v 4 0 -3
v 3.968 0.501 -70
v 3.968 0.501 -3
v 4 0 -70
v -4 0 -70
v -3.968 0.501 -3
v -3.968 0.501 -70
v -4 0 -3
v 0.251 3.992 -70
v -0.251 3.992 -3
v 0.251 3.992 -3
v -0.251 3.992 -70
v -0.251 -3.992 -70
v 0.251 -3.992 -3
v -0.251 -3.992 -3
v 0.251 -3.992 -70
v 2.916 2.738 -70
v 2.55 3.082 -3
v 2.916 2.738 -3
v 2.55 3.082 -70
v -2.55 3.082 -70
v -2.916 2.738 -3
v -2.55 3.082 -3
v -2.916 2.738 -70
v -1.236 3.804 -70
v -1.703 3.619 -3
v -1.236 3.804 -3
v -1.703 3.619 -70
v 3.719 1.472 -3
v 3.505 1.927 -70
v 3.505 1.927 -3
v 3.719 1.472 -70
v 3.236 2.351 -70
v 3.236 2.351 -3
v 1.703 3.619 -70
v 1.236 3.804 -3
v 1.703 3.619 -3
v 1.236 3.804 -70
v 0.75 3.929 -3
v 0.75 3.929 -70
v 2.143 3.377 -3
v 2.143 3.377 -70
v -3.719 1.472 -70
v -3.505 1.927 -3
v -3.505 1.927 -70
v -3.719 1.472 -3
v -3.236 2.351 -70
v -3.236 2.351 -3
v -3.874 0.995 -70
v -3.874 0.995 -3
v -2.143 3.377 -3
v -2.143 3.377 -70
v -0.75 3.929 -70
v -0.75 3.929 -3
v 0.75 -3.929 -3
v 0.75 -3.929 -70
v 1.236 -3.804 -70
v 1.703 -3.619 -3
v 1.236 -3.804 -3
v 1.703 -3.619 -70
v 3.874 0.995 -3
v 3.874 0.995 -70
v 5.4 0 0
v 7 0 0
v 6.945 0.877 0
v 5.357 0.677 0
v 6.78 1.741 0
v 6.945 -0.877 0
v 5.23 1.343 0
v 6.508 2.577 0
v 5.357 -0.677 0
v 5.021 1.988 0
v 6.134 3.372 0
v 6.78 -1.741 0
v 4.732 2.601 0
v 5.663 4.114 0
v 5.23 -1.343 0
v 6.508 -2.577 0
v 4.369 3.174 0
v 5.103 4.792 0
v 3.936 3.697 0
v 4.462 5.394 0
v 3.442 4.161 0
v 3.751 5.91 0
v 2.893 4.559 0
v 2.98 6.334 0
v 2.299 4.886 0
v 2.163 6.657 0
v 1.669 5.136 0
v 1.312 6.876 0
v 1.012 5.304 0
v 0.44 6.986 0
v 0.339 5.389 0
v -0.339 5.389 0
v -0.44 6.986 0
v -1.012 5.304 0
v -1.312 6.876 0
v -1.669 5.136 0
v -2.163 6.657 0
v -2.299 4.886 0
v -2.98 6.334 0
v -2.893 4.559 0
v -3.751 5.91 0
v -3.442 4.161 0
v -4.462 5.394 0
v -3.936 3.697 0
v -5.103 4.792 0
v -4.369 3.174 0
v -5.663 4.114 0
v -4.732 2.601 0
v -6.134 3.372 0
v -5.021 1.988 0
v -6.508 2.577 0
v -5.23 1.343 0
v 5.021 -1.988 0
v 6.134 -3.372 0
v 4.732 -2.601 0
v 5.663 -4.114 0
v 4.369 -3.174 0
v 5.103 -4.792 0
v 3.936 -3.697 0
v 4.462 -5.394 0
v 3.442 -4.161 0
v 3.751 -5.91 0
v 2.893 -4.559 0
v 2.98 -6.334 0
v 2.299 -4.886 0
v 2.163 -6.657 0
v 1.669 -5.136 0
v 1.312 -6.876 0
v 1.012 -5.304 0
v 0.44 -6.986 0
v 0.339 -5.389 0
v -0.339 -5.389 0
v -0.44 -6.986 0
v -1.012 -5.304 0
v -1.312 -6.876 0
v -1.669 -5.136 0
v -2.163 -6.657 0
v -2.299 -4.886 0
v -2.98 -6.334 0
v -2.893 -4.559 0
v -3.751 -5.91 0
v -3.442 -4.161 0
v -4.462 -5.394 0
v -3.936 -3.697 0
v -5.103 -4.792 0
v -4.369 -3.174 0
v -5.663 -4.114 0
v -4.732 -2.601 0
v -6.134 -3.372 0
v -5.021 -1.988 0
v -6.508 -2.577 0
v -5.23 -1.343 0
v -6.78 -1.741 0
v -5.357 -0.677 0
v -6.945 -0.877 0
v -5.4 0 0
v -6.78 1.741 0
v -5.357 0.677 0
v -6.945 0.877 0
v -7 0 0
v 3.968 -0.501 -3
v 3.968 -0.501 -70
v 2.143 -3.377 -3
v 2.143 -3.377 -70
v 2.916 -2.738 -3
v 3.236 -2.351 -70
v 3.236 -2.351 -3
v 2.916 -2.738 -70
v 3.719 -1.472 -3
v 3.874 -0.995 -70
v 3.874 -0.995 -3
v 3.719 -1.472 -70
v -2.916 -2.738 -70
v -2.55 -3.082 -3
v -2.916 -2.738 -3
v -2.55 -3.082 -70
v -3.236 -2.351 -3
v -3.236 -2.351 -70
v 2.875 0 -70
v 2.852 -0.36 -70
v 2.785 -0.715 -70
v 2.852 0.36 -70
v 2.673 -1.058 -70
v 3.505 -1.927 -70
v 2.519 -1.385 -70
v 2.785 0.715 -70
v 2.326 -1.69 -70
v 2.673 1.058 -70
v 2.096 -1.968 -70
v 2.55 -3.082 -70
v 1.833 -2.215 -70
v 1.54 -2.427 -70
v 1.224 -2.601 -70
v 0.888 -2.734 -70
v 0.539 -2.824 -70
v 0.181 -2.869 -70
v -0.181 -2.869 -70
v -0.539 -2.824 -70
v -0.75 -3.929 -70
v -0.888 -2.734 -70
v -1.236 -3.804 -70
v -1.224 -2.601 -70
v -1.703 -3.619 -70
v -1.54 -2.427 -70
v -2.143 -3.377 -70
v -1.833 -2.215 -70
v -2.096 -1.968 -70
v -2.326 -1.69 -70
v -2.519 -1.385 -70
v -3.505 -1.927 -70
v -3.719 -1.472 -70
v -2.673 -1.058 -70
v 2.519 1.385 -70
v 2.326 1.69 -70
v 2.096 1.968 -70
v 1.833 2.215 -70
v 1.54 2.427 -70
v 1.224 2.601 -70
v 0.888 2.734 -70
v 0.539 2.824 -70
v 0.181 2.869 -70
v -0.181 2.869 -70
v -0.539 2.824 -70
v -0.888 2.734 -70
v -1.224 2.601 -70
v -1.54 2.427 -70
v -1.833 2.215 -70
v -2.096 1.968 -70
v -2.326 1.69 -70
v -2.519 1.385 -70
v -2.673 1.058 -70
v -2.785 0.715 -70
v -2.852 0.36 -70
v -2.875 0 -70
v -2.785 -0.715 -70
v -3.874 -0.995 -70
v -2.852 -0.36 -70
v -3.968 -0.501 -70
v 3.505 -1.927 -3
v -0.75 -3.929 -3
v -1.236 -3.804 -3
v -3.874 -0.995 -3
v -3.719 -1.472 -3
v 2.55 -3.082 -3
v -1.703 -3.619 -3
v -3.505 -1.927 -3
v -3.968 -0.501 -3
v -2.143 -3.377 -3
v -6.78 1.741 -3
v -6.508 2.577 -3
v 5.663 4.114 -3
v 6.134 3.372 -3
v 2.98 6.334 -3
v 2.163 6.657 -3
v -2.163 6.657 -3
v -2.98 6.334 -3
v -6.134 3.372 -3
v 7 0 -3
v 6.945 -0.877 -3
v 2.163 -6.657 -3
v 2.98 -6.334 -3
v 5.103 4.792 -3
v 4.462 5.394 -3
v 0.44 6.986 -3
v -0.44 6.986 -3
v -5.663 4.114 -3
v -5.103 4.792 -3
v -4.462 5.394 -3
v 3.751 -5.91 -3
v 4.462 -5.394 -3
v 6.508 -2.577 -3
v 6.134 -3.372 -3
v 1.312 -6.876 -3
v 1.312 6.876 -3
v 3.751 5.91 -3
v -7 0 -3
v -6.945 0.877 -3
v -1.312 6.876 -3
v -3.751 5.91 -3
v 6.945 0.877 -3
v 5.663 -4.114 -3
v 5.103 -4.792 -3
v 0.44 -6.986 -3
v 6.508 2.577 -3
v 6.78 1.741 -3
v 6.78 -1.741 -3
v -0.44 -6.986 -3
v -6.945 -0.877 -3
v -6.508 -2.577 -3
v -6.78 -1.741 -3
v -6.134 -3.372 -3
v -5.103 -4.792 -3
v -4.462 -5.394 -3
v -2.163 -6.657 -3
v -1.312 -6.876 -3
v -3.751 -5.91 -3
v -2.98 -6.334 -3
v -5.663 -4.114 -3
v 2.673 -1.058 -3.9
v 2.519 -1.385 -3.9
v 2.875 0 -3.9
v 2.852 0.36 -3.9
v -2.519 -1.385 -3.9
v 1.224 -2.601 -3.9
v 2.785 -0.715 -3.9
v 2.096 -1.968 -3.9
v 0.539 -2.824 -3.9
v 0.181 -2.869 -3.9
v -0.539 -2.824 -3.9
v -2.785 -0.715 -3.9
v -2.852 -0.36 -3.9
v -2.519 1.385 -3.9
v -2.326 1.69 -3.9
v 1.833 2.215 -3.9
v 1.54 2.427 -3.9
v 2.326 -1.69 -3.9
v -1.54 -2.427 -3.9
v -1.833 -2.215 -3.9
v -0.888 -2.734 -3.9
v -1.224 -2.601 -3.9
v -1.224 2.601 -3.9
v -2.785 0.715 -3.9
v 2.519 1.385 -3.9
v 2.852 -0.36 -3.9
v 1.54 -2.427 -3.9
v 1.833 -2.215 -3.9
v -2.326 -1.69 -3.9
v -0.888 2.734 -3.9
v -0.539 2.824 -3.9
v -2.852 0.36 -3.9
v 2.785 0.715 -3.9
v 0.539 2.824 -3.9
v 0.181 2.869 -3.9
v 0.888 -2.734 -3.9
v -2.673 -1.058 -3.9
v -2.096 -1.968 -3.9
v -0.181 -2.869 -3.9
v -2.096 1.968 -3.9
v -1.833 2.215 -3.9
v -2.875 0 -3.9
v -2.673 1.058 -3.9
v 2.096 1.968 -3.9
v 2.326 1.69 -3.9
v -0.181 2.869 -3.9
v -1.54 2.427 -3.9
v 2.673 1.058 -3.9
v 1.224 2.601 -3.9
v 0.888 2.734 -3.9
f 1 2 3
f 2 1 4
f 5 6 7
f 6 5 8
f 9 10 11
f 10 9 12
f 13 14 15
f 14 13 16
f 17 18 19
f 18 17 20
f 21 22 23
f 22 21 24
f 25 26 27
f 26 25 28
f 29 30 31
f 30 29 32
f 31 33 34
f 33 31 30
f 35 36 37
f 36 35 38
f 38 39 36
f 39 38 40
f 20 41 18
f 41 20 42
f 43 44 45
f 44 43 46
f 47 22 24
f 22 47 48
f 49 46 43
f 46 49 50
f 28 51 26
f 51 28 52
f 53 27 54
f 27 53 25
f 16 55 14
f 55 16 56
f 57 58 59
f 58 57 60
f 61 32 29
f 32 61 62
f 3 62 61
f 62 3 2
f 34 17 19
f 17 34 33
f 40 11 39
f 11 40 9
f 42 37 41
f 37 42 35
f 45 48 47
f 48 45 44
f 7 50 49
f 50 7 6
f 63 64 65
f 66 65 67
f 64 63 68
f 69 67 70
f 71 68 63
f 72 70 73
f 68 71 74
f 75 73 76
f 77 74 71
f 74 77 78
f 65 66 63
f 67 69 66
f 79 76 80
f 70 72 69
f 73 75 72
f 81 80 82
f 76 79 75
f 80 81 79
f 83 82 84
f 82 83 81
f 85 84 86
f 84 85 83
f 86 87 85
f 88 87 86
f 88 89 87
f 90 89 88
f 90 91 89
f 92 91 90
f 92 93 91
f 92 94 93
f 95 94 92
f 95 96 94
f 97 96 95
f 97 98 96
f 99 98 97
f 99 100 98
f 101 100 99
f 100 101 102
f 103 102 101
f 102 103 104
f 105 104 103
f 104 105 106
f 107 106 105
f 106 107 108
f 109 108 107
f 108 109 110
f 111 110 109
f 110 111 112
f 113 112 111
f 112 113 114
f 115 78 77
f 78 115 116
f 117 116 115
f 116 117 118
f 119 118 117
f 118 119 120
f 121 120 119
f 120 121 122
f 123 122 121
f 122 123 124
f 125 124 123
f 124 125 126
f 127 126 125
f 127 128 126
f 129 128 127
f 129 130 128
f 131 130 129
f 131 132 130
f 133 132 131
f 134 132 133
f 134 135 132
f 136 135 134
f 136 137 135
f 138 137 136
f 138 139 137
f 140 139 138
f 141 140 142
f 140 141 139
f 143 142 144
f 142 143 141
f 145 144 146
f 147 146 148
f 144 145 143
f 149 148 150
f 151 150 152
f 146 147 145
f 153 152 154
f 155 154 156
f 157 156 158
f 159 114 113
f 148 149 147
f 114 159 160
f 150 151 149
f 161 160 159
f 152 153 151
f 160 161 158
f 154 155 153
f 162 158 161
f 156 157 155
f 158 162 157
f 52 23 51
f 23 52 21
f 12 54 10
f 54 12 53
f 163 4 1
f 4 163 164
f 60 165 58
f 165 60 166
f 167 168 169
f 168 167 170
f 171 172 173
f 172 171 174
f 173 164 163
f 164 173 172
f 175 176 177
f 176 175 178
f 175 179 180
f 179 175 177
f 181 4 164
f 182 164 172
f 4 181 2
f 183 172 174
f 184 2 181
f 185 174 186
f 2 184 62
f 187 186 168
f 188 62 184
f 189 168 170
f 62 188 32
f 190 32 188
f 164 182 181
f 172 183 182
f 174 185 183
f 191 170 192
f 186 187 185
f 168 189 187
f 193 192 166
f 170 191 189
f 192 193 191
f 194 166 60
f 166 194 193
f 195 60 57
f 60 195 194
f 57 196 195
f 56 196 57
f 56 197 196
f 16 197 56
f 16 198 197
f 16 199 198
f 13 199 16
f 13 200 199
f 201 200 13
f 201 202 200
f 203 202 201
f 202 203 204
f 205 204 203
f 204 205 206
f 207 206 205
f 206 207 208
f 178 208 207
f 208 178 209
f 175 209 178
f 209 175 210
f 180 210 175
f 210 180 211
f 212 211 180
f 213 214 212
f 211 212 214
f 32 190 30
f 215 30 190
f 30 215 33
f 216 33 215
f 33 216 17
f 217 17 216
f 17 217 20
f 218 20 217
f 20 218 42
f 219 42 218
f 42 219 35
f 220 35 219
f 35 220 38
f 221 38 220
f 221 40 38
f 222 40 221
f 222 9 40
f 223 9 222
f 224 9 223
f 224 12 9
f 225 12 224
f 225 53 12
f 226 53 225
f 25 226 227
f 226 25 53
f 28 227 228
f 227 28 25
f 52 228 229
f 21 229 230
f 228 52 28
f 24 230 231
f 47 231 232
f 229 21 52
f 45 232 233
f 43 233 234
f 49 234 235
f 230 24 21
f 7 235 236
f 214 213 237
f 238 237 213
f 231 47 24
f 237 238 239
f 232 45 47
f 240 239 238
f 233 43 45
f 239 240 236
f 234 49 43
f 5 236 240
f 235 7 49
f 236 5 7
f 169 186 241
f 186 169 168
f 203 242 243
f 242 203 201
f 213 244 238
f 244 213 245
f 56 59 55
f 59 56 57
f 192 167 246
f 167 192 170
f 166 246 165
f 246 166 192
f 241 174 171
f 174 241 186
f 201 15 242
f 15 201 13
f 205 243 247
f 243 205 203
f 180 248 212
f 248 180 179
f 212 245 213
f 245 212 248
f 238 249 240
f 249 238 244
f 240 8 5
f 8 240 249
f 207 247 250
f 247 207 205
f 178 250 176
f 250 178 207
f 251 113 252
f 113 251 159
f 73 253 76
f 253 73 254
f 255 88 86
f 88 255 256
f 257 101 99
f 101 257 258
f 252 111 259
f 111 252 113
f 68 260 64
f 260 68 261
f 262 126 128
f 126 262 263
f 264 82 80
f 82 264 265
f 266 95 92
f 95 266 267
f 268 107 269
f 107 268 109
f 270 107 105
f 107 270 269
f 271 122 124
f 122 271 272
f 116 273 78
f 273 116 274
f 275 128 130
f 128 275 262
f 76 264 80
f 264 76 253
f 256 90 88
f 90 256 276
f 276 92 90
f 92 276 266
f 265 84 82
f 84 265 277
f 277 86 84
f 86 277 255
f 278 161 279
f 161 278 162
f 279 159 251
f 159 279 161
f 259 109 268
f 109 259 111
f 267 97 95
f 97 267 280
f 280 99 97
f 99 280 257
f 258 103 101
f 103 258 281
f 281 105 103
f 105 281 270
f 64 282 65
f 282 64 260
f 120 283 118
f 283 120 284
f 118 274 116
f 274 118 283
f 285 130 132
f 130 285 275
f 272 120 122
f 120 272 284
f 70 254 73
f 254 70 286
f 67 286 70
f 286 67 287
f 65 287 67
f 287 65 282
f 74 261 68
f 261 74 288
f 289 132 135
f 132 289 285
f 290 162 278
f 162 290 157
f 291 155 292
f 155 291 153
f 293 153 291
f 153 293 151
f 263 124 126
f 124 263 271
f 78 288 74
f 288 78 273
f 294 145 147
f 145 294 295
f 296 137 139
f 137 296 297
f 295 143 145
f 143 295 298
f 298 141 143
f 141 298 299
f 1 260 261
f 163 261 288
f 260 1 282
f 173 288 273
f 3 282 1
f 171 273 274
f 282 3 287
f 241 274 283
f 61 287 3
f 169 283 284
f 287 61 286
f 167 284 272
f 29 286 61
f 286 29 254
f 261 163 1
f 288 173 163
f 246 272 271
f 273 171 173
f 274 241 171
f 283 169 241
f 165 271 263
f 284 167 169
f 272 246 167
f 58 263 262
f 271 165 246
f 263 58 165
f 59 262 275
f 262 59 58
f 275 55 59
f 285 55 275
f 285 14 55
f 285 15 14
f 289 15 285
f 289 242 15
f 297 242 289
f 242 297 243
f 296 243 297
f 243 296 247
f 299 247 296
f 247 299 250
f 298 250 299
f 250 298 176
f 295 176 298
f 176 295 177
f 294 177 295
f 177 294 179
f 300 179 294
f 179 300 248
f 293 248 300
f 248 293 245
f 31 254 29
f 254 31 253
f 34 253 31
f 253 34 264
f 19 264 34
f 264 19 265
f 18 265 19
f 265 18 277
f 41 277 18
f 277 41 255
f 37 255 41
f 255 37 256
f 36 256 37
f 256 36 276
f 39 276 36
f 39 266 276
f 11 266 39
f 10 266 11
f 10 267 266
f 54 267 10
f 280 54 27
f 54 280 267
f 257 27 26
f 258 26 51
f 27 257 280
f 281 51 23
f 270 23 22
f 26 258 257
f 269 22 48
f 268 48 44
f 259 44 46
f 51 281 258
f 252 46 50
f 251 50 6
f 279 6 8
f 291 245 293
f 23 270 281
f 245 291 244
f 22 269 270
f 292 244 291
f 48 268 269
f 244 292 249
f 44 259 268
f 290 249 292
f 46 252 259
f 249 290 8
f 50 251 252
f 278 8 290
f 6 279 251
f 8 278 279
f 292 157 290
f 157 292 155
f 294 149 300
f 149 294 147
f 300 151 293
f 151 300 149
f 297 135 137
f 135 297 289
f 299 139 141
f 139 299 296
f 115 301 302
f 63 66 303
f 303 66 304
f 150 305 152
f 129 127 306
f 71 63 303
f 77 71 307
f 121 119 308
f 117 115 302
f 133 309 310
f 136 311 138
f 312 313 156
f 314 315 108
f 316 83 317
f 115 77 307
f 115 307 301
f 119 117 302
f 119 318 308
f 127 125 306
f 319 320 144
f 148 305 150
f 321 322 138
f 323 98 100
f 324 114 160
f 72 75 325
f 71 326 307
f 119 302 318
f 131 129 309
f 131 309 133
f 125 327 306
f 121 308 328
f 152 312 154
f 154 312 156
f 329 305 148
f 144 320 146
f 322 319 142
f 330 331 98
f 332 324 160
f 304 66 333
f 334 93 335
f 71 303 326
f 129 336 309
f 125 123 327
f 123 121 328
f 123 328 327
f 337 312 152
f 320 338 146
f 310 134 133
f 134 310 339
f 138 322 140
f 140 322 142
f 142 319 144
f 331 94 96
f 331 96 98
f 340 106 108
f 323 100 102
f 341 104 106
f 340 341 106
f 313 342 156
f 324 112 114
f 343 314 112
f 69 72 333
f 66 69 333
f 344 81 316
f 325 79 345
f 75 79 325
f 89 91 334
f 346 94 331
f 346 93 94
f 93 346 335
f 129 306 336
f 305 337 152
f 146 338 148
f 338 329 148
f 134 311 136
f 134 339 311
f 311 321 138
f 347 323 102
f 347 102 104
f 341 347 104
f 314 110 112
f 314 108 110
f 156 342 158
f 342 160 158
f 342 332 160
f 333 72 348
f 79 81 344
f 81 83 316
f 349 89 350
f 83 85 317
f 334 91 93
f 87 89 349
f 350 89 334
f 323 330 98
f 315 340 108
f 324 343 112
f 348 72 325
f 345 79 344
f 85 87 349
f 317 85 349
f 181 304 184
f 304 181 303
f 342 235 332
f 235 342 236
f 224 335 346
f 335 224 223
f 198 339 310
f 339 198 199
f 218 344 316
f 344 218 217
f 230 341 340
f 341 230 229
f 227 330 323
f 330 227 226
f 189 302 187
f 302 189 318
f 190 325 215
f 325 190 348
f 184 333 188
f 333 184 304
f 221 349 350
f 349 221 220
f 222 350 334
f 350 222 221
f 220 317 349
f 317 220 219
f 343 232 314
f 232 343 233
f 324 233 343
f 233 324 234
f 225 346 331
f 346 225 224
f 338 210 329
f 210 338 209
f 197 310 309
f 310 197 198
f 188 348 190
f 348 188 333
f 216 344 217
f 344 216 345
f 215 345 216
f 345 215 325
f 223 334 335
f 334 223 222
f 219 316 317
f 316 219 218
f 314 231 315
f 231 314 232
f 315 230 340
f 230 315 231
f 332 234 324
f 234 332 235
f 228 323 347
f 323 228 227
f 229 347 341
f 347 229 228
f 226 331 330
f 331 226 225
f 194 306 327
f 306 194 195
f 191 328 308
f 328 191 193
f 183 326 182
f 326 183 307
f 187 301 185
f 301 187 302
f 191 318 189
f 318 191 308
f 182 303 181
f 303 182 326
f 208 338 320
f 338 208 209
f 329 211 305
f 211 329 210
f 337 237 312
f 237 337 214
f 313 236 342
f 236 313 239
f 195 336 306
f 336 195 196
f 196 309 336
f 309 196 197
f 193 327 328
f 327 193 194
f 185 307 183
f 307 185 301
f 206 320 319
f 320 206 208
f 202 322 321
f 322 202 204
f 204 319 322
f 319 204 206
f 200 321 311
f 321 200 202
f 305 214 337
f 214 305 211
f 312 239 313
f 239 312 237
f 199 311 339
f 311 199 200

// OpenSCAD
$fn = 50;


difference() {
	union() {
		translate(v = [0, 0, -70.0000000000]) {
			cylinder(h = 70, r = 4.0000000000);
		}
		translate(v = [0, 0, -3.0000000000]) {
			cylinder(h = 3, r = 7.0000000000);
		}
	}
	union() {
		translate(v = [0, 0, 0]) {
			rotate(a = [0, 0, 0]) {
				difference() {
					union() {
						#translate(v = [0, 0, -70.0000000000]) {
							cylinder(h = 70, r = 2.6000000000);
						}
						#translate(v = [0, 0, -3.9000000000]) {
							cylinder(h = 3.9000000000, r = 4.0000000000, r1 = 2.8750000000, r2 = 5.4000000000);
						}
						#translate(v = [0, 0, -70.0000000000]) {
							cylinder(h = 70, r = 2.8750000000);
						}
						#translate(v = [0, 0, -70.0000000000]) {
							cylinder(h = 70, r = 2.6000000000);
						}
					}
					union();
				}
			}
		}
	}
}
